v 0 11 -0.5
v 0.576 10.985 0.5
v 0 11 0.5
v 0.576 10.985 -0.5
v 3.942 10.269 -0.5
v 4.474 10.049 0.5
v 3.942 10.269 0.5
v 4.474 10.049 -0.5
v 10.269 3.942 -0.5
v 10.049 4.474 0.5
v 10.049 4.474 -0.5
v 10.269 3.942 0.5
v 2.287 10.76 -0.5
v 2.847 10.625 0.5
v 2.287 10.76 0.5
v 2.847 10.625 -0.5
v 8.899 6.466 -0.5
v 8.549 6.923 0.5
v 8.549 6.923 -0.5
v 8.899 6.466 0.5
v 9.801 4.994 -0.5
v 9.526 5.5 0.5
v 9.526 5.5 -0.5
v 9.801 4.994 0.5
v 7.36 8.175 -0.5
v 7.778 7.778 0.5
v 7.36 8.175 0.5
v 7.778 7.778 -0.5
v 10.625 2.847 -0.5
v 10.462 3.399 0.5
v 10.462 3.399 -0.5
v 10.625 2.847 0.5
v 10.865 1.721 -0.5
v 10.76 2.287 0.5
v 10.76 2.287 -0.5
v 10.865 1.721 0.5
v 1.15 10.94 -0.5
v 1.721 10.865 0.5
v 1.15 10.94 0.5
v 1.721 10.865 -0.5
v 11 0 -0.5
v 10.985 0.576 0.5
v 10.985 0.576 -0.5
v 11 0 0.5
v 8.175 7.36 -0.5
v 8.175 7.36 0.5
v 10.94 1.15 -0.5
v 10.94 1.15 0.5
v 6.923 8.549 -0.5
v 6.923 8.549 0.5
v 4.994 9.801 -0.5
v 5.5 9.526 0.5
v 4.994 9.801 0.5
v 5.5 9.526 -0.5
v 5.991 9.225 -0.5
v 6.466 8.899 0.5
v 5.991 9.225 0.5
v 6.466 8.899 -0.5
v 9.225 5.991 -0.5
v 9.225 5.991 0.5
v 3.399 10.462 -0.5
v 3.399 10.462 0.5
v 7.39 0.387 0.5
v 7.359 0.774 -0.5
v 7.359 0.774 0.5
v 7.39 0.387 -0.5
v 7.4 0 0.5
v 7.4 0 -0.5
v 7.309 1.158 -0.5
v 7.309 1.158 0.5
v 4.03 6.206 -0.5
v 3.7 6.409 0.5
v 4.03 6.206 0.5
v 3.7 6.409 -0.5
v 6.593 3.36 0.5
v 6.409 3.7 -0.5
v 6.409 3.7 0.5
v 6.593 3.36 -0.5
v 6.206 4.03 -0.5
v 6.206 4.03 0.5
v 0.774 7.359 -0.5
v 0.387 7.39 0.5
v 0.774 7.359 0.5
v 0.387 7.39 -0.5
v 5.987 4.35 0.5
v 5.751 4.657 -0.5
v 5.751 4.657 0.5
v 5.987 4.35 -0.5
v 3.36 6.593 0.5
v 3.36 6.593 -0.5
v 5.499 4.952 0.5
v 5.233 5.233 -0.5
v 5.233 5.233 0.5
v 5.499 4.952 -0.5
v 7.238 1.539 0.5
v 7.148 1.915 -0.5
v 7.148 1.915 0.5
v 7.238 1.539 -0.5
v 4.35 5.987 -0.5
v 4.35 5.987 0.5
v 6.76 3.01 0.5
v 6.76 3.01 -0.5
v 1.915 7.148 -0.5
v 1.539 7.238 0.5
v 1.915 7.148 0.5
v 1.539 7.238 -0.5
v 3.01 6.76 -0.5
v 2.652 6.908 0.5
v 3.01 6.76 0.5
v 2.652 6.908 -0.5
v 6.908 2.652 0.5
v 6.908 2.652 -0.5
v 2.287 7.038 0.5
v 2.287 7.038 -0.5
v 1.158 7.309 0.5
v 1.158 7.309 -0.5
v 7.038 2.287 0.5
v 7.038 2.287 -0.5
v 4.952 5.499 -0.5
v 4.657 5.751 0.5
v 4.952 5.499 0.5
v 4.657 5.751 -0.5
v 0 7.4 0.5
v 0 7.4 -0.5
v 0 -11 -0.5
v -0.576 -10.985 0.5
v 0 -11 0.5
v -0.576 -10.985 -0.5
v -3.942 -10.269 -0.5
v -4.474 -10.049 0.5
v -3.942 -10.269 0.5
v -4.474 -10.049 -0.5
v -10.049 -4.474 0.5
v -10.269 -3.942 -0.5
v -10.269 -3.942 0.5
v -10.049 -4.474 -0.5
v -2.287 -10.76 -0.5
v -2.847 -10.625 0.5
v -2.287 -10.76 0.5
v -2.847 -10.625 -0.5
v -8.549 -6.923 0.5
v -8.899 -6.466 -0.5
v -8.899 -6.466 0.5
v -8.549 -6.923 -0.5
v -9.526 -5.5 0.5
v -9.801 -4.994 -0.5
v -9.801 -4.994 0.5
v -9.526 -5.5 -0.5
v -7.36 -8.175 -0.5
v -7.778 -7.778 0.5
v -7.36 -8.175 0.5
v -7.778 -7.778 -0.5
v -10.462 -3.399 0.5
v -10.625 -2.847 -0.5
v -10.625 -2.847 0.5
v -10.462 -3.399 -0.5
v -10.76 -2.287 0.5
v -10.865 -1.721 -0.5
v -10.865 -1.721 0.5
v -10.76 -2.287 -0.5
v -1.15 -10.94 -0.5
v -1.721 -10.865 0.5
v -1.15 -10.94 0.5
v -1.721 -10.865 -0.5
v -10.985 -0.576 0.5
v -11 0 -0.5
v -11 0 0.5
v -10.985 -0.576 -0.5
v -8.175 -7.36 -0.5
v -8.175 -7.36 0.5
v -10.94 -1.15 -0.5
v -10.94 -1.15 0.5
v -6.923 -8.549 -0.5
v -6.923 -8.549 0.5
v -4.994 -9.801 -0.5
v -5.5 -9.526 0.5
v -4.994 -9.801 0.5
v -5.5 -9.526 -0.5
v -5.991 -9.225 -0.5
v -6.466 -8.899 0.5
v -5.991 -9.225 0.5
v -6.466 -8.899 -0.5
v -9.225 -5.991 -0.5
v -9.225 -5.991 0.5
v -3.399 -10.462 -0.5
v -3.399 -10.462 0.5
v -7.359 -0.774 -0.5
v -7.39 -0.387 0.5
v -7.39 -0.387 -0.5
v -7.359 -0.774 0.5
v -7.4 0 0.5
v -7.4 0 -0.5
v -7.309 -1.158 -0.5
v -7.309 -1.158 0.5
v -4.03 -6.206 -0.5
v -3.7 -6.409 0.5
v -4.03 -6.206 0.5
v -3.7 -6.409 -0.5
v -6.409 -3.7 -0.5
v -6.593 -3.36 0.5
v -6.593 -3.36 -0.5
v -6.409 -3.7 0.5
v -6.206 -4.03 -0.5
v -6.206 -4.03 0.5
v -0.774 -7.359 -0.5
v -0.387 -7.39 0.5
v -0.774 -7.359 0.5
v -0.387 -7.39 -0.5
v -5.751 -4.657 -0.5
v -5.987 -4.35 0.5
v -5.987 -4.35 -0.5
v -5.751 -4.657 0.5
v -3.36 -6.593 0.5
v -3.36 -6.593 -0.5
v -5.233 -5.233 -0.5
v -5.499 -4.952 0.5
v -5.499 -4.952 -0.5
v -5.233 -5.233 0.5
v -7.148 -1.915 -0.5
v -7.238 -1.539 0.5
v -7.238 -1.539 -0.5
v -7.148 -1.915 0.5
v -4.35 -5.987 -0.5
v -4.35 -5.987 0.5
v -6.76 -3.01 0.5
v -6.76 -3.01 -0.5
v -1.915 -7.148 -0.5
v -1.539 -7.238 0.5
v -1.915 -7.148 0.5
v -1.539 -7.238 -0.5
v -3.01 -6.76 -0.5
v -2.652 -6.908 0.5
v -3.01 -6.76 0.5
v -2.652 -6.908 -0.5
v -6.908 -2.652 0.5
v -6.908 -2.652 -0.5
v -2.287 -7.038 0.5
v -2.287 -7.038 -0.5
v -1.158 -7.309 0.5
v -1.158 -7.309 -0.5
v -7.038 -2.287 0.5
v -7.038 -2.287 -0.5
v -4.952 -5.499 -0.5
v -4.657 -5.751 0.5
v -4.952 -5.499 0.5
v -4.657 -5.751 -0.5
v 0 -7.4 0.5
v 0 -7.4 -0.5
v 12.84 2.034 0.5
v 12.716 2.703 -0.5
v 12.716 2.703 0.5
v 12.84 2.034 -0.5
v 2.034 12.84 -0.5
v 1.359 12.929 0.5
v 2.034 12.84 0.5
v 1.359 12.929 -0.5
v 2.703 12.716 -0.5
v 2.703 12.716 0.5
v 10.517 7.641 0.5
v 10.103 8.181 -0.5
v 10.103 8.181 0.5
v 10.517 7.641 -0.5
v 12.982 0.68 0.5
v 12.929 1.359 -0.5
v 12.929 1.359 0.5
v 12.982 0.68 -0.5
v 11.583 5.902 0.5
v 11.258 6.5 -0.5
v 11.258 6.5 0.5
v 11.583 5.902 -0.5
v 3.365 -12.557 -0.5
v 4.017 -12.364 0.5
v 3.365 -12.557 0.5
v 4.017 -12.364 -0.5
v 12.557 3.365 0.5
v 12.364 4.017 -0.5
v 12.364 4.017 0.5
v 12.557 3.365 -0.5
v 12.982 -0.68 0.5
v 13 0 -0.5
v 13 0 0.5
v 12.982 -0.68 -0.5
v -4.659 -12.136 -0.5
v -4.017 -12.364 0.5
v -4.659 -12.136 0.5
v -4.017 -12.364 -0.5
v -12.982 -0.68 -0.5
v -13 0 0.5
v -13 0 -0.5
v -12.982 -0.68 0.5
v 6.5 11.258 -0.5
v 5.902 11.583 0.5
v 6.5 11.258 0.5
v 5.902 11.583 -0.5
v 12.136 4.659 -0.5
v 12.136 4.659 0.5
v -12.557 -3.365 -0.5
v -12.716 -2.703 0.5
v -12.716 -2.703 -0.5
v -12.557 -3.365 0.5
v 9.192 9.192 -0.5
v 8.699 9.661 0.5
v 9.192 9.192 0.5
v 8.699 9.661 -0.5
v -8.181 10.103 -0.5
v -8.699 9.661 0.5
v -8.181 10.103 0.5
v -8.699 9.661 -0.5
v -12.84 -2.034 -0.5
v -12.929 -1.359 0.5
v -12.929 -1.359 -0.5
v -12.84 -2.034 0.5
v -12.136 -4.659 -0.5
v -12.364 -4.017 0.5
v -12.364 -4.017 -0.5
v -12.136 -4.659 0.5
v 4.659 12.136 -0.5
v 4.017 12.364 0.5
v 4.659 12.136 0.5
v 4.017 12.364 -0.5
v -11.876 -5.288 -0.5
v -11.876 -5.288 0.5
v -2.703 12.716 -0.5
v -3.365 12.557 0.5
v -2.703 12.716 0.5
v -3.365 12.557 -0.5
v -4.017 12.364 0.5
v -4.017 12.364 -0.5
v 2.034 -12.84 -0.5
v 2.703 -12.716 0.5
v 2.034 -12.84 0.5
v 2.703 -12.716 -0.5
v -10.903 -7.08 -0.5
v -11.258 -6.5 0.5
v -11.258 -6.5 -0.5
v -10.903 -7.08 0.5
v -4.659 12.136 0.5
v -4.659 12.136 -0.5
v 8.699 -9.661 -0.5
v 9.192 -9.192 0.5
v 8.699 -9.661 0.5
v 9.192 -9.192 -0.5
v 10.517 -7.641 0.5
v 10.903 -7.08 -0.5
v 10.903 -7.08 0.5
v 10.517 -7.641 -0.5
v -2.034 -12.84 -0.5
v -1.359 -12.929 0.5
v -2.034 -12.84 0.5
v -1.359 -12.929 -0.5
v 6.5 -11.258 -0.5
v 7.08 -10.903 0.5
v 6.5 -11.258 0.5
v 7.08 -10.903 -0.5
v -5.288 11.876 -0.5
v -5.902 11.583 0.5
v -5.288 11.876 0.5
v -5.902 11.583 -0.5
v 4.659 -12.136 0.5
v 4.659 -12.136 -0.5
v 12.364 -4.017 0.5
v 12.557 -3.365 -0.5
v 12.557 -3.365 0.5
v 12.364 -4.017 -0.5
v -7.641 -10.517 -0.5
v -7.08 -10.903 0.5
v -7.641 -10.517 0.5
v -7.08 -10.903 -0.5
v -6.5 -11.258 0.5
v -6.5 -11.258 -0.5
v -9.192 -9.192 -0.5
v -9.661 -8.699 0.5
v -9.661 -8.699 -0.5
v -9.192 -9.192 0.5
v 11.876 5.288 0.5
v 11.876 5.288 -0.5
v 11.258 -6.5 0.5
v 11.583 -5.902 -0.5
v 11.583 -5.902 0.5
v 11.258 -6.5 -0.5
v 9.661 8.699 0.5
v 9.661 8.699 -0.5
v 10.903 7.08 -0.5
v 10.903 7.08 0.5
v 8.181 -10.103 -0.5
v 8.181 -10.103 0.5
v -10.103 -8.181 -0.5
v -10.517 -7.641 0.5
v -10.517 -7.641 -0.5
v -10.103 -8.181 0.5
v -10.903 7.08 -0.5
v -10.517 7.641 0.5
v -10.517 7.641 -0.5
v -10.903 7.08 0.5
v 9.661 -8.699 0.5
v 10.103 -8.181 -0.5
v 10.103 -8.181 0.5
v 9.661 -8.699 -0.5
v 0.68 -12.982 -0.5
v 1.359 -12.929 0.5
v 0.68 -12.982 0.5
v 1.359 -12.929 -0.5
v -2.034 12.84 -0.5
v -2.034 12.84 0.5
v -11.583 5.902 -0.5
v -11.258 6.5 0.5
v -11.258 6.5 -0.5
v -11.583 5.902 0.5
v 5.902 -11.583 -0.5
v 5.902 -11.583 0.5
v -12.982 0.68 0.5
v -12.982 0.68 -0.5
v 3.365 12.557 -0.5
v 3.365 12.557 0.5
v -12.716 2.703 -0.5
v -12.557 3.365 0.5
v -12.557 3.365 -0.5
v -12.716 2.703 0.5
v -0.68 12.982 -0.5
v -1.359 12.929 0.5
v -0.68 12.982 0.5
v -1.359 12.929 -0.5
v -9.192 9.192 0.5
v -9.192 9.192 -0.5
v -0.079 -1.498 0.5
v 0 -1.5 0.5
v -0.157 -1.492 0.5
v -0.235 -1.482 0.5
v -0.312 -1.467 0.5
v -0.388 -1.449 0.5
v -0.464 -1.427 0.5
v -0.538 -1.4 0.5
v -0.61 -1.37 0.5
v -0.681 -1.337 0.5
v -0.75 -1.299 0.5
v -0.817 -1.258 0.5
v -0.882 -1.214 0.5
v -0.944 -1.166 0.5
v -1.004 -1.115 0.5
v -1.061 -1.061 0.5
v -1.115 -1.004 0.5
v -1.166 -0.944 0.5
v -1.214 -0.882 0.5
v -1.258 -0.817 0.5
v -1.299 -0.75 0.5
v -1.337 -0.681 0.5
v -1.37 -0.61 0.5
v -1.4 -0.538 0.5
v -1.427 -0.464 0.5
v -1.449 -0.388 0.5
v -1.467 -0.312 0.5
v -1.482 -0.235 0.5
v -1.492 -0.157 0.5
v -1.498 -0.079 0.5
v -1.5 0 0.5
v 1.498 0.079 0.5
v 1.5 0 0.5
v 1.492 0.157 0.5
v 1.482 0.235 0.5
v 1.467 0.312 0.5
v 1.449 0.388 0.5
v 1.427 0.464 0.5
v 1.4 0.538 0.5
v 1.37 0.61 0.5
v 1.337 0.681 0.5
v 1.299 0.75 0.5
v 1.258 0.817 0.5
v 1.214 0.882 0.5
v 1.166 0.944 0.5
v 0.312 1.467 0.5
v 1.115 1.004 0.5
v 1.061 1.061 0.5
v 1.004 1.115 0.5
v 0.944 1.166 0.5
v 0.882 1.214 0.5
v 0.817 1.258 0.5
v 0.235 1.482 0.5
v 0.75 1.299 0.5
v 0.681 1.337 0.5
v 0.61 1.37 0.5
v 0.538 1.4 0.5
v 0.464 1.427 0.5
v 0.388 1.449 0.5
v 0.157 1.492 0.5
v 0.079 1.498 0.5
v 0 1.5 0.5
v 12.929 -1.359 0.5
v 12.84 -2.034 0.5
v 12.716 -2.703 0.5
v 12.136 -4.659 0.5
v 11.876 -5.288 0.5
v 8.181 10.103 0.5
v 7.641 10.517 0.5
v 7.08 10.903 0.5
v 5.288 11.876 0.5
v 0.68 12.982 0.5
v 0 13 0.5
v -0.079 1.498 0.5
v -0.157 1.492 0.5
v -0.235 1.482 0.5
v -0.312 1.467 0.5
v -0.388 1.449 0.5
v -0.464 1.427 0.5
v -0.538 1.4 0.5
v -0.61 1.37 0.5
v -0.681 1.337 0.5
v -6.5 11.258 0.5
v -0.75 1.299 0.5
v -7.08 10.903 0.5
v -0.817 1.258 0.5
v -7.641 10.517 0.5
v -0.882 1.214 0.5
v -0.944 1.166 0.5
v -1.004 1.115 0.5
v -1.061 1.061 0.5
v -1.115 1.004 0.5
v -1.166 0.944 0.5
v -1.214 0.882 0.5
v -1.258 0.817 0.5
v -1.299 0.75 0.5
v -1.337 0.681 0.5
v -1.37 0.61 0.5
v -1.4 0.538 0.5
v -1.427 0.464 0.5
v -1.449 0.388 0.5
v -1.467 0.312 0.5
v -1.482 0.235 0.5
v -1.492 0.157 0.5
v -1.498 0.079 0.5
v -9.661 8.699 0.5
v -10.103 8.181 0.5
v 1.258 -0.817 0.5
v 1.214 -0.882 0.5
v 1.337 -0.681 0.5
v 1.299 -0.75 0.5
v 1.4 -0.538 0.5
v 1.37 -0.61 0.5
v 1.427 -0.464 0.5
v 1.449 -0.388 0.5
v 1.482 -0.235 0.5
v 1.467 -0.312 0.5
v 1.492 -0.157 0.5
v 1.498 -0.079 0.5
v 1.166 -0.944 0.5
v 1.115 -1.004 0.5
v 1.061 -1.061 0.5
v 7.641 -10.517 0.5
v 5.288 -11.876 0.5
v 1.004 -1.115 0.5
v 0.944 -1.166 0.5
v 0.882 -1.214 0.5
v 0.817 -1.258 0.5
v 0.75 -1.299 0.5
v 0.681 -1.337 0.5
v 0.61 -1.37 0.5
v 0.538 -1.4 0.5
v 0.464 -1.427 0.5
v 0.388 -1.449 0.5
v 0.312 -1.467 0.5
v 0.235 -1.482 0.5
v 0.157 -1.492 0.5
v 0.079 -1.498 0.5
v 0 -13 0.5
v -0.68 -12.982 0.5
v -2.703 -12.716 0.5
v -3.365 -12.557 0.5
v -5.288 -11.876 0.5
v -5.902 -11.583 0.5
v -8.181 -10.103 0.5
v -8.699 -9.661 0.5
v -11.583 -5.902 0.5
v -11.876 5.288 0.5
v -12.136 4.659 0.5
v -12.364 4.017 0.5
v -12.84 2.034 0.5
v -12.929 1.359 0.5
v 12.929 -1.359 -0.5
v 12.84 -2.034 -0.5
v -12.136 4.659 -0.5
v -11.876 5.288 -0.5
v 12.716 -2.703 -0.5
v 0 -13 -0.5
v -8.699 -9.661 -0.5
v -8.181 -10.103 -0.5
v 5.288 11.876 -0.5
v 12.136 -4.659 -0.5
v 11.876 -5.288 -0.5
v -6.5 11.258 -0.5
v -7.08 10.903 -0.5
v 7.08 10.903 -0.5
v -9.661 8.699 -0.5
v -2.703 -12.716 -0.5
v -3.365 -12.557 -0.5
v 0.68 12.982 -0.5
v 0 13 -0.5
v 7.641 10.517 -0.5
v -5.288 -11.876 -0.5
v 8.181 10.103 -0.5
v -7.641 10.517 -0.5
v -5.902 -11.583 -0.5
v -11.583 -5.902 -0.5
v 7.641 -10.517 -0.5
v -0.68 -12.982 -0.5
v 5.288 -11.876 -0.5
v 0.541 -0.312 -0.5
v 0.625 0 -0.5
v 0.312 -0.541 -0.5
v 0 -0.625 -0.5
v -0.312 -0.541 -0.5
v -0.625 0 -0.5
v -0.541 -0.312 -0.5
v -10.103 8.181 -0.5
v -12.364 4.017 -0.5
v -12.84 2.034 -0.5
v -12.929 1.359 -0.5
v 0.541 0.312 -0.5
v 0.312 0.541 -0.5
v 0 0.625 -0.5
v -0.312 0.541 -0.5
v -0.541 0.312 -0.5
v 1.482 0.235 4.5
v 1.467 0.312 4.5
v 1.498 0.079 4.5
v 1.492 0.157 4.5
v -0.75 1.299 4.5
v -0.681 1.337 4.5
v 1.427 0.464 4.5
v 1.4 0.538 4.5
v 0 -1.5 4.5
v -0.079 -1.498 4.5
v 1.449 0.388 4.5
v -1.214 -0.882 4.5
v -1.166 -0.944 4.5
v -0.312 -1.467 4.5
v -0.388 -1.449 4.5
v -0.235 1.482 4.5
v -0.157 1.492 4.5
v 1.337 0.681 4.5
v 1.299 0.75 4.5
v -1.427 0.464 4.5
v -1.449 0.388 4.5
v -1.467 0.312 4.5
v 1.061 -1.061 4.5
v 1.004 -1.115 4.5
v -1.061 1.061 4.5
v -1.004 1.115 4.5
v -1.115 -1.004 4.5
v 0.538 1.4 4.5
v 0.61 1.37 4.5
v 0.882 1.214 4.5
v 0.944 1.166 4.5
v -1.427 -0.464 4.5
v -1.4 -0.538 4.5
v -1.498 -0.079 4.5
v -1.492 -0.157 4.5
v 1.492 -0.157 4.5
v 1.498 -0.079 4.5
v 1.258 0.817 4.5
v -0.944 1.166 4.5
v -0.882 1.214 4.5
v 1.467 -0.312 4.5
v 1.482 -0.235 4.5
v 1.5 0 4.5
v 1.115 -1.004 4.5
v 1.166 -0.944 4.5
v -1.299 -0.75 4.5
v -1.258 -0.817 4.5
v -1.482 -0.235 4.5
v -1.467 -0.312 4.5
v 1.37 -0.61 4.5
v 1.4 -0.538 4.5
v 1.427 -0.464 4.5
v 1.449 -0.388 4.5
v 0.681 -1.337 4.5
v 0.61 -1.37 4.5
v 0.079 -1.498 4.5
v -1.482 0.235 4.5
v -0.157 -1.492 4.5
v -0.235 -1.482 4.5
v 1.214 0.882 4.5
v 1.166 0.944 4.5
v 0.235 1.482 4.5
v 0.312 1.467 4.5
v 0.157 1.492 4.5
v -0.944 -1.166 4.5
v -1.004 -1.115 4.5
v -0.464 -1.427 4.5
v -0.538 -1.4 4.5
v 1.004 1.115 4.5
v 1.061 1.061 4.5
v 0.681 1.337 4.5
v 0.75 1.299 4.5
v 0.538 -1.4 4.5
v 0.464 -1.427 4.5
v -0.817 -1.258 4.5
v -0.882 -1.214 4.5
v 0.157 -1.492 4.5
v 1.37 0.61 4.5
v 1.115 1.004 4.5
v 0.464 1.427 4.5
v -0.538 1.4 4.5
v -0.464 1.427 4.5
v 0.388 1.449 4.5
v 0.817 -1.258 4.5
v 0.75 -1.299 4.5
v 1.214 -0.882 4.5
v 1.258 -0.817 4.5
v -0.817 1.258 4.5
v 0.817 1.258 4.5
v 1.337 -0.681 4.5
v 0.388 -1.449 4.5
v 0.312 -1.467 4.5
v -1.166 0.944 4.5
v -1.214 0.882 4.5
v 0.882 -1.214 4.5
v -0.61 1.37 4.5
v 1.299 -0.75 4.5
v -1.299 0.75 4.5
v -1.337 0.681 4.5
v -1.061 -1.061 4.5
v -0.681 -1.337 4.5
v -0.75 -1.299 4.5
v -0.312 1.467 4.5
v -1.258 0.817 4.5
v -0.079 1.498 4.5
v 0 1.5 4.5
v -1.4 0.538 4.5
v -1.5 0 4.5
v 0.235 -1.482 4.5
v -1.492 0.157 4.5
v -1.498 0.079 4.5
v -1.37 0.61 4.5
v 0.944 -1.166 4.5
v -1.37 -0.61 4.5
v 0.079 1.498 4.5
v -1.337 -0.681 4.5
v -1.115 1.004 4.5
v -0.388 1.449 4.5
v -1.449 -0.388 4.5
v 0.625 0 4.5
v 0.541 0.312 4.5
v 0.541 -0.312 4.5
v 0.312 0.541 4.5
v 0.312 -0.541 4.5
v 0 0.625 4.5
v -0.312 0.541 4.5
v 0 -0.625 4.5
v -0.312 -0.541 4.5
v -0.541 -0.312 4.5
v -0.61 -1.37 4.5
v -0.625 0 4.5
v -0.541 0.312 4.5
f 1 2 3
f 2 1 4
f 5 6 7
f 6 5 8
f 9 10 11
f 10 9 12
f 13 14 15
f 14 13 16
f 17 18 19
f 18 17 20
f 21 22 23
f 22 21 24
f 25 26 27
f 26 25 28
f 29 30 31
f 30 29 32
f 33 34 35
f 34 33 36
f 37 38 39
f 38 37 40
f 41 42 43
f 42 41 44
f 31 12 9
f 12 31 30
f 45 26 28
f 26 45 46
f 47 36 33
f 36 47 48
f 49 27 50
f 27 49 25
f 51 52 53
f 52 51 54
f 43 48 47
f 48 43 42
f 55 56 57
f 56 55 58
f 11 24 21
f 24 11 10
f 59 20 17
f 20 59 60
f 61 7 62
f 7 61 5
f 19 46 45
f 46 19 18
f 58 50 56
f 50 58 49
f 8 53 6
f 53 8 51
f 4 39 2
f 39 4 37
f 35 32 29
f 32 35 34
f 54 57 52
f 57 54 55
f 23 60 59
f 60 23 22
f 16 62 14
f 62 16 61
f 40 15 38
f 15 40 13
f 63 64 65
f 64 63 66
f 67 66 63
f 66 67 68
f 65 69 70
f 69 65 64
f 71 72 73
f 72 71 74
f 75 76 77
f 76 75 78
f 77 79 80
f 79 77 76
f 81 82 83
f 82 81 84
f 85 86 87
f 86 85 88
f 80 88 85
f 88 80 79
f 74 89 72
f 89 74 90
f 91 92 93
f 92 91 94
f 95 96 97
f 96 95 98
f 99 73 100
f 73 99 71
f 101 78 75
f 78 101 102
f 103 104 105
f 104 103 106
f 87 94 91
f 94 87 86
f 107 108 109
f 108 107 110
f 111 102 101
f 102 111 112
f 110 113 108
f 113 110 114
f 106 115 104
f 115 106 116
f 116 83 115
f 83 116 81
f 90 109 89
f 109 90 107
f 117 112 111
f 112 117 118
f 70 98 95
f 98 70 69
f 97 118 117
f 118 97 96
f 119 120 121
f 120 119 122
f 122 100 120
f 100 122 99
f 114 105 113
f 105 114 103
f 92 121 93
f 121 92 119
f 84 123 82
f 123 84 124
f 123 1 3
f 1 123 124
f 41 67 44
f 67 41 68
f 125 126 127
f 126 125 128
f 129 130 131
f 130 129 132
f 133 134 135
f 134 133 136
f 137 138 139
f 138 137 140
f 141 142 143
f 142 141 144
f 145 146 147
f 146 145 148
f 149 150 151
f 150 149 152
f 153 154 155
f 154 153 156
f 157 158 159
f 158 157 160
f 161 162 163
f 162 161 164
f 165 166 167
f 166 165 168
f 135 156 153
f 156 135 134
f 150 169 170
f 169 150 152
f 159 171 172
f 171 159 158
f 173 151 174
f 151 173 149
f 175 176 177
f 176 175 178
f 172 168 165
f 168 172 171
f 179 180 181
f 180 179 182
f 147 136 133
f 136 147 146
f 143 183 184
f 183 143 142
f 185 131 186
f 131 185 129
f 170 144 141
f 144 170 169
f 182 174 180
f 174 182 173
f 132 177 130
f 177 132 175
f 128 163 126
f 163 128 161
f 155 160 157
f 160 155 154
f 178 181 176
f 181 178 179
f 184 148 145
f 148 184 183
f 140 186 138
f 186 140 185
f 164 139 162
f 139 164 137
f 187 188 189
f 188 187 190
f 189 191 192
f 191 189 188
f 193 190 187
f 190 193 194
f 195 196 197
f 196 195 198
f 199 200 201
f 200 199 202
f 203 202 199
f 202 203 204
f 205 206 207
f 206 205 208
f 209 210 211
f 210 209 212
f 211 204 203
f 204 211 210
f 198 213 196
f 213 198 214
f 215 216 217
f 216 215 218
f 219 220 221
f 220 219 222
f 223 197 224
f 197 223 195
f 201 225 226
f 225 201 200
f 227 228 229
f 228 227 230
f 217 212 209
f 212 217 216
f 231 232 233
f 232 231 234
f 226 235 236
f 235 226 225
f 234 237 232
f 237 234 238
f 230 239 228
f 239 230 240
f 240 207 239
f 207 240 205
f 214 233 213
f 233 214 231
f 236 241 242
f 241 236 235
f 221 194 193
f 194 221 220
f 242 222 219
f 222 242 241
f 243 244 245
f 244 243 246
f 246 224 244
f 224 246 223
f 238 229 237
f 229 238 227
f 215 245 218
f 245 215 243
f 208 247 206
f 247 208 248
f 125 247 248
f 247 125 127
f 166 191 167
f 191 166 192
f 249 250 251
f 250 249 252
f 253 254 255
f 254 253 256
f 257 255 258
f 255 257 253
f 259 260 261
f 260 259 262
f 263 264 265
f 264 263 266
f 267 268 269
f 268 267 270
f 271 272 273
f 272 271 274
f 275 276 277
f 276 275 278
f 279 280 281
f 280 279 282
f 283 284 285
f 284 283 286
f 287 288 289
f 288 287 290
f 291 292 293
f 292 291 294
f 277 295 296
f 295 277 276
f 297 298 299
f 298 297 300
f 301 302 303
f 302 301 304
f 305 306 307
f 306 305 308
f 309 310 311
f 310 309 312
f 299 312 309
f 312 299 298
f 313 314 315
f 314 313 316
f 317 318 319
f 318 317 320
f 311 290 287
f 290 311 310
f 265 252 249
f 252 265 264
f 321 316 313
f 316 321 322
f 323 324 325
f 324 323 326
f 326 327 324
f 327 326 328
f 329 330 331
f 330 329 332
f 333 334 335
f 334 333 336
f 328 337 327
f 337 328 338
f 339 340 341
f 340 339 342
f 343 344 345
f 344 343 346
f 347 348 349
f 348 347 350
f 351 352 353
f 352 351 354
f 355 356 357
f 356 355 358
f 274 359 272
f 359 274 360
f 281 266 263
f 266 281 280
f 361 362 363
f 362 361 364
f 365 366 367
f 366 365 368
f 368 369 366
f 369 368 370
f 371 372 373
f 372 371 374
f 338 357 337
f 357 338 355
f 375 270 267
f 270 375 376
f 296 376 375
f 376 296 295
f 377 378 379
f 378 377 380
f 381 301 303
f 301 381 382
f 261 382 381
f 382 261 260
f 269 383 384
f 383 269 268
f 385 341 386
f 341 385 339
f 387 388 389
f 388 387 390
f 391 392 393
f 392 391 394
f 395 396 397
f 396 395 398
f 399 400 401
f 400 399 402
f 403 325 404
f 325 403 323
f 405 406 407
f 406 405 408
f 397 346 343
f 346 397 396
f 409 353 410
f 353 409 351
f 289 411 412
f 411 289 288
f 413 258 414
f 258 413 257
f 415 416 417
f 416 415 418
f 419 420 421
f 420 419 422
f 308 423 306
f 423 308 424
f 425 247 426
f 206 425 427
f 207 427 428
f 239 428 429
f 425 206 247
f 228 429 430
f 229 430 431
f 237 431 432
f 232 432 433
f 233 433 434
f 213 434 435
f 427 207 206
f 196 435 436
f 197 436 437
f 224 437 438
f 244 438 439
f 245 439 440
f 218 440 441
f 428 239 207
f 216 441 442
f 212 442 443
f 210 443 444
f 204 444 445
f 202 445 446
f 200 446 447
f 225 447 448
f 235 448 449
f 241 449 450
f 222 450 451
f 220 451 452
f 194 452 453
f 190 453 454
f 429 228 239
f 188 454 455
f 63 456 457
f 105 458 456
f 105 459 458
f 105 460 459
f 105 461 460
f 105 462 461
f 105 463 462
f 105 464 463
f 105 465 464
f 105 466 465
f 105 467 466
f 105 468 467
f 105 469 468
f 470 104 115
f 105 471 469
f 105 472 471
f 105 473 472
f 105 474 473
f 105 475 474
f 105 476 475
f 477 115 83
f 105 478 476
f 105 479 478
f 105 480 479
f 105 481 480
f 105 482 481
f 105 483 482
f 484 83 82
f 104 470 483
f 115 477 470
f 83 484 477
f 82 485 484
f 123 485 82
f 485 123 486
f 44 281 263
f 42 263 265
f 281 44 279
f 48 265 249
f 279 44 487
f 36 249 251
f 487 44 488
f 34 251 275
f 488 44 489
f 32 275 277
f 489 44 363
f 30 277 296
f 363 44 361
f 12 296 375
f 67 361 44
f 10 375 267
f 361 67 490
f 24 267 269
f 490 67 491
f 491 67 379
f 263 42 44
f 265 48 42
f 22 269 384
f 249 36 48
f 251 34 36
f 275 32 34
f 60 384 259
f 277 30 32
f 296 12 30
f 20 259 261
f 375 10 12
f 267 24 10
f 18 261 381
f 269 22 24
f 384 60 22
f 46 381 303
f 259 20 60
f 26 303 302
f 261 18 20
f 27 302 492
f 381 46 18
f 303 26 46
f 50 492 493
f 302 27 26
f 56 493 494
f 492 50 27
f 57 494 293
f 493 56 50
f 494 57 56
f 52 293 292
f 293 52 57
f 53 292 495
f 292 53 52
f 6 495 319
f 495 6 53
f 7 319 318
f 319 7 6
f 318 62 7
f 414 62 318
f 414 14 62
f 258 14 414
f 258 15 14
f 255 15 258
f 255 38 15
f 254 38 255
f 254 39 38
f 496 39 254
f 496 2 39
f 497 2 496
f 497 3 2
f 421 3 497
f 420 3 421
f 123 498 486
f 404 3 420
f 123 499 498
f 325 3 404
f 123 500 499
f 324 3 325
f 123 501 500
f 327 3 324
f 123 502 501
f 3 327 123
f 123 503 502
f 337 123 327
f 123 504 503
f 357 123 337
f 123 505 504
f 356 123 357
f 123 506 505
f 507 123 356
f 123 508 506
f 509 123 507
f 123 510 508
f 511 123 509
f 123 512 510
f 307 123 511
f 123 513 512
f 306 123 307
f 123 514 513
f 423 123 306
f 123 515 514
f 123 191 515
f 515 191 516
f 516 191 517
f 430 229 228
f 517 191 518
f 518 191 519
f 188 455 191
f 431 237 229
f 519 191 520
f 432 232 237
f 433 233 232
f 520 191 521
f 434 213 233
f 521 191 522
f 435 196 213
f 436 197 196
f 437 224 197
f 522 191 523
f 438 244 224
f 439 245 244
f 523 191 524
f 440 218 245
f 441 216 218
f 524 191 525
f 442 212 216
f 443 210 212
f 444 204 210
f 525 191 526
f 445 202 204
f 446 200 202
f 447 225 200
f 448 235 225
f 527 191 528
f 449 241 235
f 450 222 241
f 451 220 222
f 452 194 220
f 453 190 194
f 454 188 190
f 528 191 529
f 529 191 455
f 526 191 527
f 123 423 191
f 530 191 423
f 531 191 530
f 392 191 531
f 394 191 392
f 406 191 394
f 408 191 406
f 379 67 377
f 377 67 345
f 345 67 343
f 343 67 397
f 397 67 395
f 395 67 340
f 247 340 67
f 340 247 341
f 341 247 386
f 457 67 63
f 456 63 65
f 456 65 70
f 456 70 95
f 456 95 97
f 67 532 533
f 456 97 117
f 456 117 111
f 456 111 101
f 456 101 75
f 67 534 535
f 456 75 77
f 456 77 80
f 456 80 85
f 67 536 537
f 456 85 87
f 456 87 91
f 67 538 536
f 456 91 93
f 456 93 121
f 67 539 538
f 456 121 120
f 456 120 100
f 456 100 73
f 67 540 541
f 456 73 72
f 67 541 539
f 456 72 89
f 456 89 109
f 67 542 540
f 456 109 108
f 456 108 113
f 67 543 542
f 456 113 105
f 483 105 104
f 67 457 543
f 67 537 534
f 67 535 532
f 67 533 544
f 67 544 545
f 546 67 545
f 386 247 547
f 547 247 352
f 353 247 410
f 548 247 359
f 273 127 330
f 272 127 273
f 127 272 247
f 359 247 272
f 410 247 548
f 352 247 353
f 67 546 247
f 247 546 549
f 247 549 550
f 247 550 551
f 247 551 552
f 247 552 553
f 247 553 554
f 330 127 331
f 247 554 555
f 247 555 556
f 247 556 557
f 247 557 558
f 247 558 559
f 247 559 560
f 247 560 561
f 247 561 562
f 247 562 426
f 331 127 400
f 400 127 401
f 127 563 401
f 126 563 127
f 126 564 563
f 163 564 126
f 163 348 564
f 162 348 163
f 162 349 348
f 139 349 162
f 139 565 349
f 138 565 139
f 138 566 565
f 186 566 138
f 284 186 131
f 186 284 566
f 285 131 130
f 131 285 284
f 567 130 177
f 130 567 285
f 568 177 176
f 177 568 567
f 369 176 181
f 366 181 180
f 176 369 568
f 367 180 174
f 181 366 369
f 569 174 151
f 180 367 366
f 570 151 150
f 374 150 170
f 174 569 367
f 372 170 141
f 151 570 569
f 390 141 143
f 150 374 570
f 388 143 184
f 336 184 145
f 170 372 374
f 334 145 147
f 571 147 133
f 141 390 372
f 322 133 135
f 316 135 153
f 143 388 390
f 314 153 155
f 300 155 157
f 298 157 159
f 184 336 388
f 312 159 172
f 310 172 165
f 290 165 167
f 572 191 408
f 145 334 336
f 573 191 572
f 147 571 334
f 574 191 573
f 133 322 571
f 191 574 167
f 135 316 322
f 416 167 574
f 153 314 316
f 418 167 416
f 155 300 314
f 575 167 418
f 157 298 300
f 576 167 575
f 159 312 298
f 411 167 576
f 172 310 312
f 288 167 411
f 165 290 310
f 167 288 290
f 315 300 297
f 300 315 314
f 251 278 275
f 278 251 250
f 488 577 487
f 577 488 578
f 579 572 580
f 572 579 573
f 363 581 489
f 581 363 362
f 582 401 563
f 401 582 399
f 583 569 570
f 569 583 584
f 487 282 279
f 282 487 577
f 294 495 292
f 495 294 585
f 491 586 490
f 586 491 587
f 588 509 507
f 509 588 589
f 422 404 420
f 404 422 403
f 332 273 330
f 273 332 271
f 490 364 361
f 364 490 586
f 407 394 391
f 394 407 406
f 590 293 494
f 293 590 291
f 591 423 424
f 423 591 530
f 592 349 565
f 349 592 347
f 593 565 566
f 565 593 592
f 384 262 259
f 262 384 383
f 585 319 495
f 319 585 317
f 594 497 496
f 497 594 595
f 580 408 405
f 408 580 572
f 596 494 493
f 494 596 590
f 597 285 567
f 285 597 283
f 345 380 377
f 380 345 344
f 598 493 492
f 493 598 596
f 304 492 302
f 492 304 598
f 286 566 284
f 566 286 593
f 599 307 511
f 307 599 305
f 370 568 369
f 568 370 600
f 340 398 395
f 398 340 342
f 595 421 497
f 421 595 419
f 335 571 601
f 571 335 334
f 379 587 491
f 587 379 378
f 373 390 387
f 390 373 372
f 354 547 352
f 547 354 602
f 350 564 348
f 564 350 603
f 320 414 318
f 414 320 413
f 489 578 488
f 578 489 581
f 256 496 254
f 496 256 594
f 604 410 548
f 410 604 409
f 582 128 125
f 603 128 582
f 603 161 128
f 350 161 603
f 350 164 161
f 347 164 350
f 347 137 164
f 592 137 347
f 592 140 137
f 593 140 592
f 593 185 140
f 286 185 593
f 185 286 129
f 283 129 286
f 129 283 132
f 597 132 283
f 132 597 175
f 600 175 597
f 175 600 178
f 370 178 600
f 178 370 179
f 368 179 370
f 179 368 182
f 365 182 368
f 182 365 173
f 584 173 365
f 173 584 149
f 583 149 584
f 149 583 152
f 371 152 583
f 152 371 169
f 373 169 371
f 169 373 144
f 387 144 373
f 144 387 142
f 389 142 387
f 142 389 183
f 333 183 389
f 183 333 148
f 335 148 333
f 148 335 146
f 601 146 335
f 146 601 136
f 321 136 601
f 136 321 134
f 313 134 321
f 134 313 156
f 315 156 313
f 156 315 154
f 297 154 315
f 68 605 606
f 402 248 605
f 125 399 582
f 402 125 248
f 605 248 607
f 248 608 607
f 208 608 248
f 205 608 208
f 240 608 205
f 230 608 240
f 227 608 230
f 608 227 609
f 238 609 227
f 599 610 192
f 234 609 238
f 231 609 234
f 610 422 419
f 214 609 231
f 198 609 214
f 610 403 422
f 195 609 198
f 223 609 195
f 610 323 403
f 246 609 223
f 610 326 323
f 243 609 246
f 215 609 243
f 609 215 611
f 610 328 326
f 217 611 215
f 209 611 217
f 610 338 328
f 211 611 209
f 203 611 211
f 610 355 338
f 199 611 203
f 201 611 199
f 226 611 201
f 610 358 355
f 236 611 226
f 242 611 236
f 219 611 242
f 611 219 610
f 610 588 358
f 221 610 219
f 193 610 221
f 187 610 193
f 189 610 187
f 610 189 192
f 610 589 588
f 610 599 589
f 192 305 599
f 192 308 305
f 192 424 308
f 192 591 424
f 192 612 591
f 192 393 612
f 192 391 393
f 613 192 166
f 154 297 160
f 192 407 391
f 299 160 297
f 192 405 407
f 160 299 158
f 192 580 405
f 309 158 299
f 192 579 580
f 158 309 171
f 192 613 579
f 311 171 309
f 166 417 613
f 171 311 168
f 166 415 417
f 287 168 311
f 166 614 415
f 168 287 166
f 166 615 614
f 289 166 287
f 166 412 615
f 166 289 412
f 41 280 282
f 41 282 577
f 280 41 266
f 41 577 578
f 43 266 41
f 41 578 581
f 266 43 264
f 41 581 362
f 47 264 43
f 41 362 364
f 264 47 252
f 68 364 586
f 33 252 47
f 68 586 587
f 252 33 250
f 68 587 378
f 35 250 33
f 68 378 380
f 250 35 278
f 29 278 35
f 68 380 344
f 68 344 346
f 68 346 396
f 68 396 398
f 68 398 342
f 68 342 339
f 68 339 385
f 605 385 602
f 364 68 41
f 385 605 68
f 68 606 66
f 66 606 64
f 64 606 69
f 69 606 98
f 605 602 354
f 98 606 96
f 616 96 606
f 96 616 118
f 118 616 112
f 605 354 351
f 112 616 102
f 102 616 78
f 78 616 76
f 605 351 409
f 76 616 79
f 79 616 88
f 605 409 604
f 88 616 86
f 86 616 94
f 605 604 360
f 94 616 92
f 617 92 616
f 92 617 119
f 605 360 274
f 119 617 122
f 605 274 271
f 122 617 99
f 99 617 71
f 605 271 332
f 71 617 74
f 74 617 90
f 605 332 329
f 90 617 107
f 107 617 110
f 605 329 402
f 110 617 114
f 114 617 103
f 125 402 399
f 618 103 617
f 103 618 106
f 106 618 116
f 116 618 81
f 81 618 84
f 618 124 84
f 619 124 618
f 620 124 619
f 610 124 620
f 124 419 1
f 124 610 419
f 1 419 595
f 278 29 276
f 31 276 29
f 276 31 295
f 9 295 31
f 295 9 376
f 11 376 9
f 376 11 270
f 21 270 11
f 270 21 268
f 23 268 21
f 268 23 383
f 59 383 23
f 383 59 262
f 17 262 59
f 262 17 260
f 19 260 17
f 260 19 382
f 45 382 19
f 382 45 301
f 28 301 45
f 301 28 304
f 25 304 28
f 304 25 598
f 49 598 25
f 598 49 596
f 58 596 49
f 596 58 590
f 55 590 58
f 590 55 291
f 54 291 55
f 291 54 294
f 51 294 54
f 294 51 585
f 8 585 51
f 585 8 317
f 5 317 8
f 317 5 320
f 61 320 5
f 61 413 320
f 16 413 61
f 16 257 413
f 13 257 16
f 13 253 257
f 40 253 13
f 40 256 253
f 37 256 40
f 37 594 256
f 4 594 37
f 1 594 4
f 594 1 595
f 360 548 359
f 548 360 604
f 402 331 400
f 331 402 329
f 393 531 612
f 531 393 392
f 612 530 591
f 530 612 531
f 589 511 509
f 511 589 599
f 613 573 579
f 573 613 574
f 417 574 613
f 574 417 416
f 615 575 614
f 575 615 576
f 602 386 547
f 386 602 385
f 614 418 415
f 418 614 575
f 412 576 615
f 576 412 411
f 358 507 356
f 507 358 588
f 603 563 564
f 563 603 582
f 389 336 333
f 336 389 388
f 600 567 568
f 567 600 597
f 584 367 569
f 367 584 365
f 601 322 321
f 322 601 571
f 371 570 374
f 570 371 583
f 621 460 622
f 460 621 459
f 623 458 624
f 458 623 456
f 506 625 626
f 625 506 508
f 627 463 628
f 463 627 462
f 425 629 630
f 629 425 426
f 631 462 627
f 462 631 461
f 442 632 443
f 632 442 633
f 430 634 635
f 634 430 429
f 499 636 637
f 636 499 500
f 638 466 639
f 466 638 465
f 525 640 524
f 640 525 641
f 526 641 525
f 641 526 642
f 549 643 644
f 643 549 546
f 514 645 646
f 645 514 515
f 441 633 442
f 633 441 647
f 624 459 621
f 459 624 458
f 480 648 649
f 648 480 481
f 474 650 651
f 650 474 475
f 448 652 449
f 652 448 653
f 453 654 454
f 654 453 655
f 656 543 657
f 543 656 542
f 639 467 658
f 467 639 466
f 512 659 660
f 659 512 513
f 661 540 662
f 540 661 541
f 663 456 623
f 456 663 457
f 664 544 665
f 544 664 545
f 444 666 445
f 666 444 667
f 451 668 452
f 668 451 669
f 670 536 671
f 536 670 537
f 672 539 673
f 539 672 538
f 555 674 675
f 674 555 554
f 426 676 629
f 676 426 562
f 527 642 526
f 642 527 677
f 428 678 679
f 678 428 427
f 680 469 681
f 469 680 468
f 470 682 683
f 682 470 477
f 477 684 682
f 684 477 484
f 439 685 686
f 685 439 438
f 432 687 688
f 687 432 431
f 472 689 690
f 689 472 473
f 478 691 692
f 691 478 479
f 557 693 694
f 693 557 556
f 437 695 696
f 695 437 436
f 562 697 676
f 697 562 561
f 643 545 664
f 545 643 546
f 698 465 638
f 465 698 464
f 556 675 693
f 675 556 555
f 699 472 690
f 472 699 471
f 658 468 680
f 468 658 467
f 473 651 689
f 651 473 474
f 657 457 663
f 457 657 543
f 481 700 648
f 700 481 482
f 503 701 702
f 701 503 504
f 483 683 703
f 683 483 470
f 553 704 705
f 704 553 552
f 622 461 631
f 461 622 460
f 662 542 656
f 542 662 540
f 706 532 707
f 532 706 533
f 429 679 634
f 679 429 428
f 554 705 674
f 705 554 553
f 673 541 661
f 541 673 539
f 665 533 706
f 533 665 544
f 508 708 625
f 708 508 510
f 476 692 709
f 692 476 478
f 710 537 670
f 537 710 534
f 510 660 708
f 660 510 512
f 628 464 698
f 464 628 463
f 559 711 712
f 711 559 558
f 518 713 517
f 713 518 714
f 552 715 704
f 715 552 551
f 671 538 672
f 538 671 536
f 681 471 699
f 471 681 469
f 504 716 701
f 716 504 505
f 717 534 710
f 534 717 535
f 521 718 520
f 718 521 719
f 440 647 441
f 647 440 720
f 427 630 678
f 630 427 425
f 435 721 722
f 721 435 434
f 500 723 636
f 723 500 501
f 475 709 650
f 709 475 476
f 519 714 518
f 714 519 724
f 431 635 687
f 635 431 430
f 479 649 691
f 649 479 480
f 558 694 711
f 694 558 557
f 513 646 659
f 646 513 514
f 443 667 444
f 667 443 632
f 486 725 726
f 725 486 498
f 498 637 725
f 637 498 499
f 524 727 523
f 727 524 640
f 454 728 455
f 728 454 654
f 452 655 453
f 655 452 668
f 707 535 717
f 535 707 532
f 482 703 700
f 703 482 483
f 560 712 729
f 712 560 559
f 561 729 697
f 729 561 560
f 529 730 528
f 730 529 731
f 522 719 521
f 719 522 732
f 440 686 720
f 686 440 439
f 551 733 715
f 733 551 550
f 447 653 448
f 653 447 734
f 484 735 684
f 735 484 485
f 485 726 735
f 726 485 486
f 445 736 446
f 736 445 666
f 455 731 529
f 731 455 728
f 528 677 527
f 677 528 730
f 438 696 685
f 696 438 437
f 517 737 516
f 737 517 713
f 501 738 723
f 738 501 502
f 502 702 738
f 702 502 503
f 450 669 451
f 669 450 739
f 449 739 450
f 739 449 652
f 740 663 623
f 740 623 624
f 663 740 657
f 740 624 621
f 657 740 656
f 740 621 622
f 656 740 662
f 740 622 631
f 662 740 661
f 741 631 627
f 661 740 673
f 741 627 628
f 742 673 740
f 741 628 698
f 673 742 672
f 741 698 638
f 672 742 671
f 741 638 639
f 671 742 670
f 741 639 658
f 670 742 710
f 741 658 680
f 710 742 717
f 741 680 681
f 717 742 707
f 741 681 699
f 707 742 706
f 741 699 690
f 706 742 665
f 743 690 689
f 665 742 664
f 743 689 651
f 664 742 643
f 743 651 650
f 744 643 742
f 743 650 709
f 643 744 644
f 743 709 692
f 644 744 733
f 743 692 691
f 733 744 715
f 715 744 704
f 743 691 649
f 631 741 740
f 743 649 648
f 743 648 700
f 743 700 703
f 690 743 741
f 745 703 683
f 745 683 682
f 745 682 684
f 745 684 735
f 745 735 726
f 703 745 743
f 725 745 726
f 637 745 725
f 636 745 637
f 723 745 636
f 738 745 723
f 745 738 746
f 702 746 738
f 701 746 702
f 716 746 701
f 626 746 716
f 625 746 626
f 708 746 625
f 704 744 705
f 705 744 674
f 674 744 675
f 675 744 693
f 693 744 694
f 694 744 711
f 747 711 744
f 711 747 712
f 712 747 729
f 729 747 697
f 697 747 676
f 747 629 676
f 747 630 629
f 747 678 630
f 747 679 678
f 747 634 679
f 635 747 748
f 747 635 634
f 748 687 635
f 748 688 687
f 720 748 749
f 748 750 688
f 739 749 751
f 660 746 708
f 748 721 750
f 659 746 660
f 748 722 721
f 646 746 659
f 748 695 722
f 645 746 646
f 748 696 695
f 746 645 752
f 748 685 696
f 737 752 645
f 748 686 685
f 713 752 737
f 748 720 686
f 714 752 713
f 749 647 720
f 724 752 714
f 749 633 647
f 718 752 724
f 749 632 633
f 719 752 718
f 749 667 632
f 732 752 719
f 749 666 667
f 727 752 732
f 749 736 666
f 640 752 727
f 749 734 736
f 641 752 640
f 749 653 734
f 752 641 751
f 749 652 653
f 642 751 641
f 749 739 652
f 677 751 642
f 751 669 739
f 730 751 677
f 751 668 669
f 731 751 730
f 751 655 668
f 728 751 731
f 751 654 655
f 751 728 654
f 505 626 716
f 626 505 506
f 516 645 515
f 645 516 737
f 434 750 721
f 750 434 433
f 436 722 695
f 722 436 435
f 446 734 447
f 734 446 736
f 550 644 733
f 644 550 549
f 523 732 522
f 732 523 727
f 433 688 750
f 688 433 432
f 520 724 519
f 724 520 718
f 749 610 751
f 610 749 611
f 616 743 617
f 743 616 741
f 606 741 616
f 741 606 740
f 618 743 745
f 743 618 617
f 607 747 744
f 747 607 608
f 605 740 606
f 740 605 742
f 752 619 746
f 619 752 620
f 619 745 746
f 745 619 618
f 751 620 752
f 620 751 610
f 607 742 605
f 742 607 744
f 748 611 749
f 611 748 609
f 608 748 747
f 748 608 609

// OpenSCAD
difference() {
union() {
cylinder(r=13,h=1,center=true, $fn=120);

translate([0,0,2]) 
cylinder(r=1.5,h=5,center=true, $fn=120);

}
cylinder(r=0.625,h=20,center=true, $fn=12);


for ( i = [0 : 1] ){

rotate([0,0,180 * i]) intersection() {
translate([0,0,-10]) cube([20,20,20]);
difference() {
color("red") cylinder(r=11,h=2,center=true, $fn=120);
color("red") cylinder(r=7.4,h=3,center=true, $fn=120);
}
}

}

}
